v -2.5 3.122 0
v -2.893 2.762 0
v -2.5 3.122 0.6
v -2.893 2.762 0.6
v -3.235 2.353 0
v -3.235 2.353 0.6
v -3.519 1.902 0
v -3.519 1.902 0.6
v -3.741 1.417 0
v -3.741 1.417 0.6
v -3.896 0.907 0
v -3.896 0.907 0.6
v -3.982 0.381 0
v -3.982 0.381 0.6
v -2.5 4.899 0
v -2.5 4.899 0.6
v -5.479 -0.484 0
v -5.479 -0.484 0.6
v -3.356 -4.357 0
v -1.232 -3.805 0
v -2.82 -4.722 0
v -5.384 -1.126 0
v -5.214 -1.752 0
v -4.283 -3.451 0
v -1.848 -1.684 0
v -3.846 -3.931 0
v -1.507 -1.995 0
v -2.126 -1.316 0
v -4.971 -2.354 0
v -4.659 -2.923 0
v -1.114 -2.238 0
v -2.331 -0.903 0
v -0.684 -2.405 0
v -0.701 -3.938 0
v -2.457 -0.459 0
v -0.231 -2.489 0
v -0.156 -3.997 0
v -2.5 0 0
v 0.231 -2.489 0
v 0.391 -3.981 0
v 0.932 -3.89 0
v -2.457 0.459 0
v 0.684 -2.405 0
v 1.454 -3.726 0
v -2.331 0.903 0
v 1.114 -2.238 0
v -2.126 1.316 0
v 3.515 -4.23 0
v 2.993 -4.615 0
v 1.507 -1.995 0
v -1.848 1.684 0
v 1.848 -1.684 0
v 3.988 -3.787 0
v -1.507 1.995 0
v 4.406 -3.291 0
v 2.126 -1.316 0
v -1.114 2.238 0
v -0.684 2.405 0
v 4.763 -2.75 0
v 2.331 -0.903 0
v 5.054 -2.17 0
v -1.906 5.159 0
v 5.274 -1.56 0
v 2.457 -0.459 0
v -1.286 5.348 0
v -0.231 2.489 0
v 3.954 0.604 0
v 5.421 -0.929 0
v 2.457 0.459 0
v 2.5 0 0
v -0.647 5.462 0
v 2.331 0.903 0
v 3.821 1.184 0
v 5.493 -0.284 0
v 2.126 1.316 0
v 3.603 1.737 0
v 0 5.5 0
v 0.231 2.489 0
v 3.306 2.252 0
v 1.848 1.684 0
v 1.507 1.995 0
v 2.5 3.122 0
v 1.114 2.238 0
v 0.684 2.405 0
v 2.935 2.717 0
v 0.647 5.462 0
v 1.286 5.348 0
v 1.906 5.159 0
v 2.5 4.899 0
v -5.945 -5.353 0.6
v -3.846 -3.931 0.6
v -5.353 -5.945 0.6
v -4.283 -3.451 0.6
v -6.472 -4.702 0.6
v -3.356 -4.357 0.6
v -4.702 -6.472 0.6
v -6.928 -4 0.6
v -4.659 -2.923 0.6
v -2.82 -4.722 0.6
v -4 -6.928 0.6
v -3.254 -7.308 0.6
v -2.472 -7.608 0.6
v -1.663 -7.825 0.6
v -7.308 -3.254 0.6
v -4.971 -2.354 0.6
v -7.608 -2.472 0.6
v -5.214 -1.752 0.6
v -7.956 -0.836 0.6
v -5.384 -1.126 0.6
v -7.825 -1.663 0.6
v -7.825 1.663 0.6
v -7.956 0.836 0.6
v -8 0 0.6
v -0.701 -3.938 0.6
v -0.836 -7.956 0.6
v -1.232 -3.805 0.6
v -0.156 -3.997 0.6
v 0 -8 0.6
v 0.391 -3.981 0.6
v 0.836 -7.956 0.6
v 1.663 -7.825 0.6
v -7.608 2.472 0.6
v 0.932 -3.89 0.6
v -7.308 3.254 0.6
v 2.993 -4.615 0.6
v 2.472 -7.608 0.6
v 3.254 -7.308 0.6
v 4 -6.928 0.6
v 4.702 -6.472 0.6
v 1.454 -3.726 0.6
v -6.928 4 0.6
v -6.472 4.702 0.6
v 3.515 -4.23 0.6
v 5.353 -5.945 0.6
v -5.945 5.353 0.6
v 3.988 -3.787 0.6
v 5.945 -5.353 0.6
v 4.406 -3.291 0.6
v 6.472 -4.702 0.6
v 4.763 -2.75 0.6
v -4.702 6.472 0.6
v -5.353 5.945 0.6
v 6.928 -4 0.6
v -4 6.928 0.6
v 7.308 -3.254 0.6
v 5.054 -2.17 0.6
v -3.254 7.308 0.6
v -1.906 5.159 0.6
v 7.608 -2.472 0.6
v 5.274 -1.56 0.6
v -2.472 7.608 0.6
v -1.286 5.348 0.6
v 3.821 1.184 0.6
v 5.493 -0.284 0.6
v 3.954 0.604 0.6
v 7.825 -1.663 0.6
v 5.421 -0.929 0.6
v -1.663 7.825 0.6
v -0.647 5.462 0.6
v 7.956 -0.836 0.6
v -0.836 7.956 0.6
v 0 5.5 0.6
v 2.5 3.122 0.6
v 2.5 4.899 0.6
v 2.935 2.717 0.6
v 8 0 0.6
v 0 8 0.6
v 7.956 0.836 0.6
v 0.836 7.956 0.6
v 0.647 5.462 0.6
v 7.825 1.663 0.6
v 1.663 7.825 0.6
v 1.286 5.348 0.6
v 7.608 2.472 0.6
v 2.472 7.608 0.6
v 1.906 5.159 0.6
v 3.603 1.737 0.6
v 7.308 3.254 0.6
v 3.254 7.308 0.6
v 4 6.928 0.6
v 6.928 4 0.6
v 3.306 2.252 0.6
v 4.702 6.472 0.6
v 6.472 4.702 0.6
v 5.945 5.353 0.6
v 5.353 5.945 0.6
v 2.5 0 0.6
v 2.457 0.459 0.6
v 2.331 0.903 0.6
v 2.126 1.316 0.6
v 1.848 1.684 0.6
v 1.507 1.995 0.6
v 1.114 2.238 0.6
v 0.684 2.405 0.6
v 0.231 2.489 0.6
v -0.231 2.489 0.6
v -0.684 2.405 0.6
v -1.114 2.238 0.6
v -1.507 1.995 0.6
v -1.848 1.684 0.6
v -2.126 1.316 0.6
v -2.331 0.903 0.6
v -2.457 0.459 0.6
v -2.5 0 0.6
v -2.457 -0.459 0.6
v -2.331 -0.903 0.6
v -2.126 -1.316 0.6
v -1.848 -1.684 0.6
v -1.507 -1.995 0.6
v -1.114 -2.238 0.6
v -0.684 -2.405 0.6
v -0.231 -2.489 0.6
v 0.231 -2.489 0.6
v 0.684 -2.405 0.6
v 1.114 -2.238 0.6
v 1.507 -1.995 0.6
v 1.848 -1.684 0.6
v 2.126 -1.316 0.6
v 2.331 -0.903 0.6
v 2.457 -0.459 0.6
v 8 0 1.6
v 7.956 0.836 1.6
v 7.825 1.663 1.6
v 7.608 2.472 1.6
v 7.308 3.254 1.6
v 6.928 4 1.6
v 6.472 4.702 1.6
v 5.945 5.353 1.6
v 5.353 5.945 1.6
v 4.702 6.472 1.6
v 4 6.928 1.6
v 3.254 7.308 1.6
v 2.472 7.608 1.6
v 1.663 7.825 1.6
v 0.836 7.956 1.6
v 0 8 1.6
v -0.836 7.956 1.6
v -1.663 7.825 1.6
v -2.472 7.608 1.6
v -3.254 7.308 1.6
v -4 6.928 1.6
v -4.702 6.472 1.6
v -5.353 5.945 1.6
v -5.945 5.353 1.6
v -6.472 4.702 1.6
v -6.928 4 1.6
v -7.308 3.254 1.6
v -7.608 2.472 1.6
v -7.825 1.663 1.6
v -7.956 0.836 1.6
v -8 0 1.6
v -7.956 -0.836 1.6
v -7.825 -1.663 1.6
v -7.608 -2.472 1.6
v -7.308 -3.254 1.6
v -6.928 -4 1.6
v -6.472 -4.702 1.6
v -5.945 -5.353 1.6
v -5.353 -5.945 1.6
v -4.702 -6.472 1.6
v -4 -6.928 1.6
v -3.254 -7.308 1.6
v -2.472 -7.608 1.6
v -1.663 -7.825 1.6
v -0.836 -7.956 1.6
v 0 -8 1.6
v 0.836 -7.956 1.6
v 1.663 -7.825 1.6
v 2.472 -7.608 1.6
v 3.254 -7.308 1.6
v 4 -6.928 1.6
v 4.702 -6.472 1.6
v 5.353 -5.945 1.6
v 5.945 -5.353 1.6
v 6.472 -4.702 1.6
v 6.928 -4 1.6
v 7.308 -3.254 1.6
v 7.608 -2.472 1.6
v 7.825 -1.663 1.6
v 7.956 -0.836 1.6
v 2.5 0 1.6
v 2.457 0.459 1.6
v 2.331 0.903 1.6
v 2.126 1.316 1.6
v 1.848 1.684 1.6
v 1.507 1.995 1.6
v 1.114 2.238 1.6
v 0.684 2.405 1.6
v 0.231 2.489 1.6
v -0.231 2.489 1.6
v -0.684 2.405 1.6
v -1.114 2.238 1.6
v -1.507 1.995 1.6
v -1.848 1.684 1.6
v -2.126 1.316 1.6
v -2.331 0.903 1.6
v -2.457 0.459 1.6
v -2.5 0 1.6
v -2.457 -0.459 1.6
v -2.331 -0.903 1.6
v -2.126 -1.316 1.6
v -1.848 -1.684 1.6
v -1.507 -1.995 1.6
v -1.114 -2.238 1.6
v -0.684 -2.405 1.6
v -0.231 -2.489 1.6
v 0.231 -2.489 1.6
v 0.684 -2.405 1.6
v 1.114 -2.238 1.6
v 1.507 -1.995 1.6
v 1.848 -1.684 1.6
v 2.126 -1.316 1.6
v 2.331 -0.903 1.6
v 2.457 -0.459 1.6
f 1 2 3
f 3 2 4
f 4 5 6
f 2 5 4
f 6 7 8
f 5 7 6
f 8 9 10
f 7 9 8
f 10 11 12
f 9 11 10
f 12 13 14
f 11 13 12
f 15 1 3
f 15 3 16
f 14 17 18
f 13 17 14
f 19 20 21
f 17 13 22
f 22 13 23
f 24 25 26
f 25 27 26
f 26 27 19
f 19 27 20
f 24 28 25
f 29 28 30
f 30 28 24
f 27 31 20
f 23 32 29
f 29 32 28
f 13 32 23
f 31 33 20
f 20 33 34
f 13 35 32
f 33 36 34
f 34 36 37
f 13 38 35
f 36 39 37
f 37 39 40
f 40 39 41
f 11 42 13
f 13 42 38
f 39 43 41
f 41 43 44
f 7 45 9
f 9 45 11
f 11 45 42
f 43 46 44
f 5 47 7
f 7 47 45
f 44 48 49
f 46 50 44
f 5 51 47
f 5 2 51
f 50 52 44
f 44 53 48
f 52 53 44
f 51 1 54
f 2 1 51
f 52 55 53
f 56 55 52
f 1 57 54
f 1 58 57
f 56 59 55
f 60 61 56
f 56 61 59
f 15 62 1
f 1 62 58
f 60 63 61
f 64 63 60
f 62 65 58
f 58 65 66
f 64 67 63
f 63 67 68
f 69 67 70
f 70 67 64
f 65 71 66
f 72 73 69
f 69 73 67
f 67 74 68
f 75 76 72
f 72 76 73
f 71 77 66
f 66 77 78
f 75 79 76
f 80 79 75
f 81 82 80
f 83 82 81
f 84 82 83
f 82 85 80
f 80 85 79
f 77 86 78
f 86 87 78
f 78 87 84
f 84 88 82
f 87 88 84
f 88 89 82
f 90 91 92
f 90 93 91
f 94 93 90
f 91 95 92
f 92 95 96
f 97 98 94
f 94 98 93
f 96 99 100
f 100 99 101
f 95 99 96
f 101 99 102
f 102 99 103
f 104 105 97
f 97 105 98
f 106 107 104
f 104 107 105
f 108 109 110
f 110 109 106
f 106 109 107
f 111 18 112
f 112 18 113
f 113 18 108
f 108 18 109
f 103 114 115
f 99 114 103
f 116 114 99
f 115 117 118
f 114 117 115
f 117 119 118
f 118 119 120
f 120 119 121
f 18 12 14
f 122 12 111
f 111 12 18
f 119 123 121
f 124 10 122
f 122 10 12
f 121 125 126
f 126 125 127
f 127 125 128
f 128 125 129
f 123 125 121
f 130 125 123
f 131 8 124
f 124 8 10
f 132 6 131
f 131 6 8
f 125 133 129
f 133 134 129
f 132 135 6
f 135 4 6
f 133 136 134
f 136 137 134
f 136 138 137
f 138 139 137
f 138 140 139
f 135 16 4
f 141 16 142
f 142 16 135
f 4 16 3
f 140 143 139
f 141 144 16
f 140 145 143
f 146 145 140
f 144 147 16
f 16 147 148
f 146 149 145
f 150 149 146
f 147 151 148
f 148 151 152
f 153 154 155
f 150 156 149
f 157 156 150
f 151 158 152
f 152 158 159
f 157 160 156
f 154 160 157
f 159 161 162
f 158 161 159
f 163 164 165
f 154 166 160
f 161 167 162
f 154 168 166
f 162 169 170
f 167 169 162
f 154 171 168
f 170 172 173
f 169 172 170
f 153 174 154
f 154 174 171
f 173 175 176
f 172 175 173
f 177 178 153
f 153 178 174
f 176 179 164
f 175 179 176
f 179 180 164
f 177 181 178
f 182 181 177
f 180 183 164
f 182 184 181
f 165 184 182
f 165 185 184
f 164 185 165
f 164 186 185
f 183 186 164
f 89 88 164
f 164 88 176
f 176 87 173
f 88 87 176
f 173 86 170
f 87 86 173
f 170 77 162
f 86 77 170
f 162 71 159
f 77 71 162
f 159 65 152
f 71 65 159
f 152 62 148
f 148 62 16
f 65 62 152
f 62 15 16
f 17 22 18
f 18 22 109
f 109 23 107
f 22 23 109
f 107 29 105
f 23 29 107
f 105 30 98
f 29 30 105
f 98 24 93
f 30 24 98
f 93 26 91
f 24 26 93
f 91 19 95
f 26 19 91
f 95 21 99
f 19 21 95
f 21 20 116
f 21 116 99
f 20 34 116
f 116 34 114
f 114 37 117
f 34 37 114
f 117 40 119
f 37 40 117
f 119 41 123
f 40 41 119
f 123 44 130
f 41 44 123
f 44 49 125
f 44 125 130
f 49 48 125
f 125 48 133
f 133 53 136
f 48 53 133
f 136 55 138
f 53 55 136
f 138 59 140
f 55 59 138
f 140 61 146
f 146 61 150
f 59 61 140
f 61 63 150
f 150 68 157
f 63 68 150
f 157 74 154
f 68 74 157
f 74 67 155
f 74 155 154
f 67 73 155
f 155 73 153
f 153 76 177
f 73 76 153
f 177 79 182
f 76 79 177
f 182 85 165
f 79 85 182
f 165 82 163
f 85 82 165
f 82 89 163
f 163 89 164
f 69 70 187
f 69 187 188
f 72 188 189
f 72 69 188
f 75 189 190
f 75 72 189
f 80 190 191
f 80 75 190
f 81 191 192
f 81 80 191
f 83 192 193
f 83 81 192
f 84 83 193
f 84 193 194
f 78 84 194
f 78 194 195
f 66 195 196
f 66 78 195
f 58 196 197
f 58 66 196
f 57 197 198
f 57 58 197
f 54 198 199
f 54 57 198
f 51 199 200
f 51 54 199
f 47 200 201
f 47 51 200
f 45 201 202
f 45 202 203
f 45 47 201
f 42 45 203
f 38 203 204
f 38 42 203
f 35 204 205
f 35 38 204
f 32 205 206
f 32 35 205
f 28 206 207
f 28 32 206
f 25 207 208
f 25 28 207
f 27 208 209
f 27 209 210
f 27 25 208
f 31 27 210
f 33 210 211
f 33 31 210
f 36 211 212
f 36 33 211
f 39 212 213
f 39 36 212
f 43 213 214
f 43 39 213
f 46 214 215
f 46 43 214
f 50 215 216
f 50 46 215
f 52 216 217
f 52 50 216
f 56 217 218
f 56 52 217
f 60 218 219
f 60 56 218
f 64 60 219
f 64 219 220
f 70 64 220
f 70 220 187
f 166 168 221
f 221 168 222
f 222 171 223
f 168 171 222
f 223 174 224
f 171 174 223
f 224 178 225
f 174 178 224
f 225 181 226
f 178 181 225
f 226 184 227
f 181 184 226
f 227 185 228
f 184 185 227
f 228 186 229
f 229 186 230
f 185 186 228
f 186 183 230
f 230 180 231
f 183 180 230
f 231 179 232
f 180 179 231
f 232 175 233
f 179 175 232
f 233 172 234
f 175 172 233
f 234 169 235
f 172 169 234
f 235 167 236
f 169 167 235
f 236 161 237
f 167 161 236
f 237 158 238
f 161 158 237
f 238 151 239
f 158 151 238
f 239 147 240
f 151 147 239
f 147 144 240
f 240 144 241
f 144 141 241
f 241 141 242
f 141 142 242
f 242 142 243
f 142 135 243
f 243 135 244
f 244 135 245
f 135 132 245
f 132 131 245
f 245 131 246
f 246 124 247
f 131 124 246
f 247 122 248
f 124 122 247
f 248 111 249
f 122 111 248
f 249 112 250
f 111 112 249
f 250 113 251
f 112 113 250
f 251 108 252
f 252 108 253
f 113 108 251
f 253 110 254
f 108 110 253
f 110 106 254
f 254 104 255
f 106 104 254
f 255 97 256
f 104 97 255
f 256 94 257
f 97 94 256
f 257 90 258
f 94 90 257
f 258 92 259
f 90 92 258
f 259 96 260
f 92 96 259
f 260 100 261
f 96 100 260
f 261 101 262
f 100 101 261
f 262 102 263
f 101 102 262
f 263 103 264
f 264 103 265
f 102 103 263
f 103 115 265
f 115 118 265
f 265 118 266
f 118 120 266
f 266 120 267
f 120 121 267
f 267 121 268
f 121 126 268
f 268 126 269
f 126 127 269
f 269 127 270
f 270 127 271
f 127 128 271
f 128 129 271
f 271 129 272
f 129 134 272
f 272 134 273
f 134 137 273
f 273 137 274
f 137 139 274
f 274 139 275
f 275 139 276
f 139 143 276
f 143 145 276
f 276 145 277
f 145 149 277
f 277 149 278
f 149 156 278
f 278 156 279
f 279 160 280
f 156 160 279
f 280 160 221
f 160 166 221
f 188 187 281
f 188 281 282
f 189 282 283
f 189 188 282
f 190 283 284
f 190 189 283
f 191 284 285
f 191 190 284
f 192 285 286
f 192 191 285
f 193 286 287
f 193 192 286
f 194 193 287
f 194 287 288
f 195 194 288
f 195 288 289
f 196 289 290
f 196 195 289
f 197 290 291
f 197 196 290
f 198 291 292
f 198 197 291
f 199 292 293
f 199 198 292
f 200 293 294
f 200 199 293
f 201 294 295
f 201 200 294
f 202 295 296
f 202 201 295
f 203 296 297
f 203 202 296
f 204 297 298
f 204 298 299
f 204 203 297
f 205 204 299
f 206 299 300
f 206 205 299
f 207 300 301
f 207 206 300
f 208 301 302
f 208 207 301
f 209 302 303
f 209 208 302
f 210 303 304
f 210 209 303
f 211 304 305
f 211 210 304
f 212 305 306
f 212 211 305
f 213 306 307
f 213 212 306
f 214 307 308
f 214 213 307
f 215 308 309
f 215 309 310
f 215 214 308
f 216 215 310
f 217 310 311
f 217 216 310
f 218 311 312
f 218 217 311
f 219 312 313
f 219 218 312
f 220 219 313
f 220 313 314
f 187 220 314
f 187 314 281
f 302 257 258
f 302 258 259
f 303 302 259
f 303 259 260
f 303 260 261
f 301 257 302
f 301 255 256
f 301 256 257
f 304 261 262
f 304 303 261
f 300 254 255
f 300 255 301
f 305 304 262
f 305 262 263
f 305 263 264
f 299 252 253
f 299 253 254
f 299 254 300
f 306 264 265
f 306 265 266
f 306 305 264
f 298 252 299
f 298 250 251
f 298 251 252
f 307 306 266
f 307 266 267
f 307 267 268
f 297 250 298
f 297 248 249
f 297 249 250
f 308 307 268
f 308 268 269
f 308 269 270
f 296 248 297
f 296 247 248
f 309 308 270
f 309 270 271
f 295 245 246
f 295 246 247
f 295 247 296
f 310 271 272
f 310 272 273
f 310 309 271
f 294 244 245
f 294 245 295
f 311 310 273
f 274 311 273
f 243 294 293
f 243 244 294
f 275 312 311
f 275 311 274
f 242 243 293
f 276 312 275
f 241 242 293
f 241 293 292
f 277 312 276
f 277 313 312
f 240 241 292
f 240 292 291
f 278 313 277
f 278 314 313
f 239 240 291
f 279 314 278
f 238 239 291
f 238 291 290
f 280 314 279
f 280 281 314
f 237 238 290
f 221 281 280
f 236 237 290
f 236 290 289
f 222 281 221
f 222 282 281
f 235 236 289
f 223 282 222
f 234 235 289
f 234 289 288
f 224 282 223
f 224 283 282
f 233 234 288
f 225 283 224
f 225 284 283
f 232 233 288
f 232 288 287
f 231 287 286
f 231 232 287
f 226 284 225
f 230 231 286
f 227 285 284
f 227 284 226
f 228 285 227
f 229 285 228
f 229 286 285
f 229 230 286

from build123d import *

# Parameters (mm, degrees)
SKETCH_R      = 2.5
PAD_DEPTH     = 0.6
SKETCH002_R   = 8
SKETCH002_R_2 = 2.5
PAD001_DEPTH  = 1


with BuildPart() as part:
    # Sketch → Pad (new body)
    with BuildSketch(Plane.XY):
        with BuildLine():
            ThreePointArc((-2.5, 3.122499), (-3.518971, 1.901799), (-3.981855, 0.380567))
            Line((-5.478695, -0.483634), (-3.981855, 0.380567))
            ThreePointArc((-5.478695, -0.483634), (-4.659167, -2.922699), (-2.81991, -4.722087))
            Line((-1.232265, -3.80546), (-2.81991, -4.722087))
            ThreePointArc((-1.232265, -3.80546), (0.117848, -3.998264), (1.454262, -3.726275))
            Line((2.992718, -4.614503), (1.454262, -3.726275))
            ThreePointArc((2.992718, -4.614503), (4.763149, -2.749985), (5.492638, -0.284484))
            Line((3.954108, 0.604177), (5.492638, -0.284484))
            ThreePointArc((3.954108, 0.604177), (3.46401, 2.000159), (2.5, 3.122499))
            Line((2.5, 3.122499), (2.5, 4.898979))
            ThreePointArc((2.5, 4.898979), (0, 5.5), (-2.5, 4.898979))
            Line((-2.5, 3.122499), (-2.5, 4.898979))
        make_face()
        Circle(SKETCH_R, mode=Mode.SUBTRACT)
    extrude(amount=PAD_DEPTH)

    # Sketch002 (on Face15 of Pad) → Pad001 (join)
    with BuildSketch(Plane.XY.offset(0.6)):
        Circle(SKETCH002_R)
        Circle(SKETCH002_R_2, mode=Mode.SUBTRACT)
    extrude(amount=PAD001_DEPTH)


solid = part.part
